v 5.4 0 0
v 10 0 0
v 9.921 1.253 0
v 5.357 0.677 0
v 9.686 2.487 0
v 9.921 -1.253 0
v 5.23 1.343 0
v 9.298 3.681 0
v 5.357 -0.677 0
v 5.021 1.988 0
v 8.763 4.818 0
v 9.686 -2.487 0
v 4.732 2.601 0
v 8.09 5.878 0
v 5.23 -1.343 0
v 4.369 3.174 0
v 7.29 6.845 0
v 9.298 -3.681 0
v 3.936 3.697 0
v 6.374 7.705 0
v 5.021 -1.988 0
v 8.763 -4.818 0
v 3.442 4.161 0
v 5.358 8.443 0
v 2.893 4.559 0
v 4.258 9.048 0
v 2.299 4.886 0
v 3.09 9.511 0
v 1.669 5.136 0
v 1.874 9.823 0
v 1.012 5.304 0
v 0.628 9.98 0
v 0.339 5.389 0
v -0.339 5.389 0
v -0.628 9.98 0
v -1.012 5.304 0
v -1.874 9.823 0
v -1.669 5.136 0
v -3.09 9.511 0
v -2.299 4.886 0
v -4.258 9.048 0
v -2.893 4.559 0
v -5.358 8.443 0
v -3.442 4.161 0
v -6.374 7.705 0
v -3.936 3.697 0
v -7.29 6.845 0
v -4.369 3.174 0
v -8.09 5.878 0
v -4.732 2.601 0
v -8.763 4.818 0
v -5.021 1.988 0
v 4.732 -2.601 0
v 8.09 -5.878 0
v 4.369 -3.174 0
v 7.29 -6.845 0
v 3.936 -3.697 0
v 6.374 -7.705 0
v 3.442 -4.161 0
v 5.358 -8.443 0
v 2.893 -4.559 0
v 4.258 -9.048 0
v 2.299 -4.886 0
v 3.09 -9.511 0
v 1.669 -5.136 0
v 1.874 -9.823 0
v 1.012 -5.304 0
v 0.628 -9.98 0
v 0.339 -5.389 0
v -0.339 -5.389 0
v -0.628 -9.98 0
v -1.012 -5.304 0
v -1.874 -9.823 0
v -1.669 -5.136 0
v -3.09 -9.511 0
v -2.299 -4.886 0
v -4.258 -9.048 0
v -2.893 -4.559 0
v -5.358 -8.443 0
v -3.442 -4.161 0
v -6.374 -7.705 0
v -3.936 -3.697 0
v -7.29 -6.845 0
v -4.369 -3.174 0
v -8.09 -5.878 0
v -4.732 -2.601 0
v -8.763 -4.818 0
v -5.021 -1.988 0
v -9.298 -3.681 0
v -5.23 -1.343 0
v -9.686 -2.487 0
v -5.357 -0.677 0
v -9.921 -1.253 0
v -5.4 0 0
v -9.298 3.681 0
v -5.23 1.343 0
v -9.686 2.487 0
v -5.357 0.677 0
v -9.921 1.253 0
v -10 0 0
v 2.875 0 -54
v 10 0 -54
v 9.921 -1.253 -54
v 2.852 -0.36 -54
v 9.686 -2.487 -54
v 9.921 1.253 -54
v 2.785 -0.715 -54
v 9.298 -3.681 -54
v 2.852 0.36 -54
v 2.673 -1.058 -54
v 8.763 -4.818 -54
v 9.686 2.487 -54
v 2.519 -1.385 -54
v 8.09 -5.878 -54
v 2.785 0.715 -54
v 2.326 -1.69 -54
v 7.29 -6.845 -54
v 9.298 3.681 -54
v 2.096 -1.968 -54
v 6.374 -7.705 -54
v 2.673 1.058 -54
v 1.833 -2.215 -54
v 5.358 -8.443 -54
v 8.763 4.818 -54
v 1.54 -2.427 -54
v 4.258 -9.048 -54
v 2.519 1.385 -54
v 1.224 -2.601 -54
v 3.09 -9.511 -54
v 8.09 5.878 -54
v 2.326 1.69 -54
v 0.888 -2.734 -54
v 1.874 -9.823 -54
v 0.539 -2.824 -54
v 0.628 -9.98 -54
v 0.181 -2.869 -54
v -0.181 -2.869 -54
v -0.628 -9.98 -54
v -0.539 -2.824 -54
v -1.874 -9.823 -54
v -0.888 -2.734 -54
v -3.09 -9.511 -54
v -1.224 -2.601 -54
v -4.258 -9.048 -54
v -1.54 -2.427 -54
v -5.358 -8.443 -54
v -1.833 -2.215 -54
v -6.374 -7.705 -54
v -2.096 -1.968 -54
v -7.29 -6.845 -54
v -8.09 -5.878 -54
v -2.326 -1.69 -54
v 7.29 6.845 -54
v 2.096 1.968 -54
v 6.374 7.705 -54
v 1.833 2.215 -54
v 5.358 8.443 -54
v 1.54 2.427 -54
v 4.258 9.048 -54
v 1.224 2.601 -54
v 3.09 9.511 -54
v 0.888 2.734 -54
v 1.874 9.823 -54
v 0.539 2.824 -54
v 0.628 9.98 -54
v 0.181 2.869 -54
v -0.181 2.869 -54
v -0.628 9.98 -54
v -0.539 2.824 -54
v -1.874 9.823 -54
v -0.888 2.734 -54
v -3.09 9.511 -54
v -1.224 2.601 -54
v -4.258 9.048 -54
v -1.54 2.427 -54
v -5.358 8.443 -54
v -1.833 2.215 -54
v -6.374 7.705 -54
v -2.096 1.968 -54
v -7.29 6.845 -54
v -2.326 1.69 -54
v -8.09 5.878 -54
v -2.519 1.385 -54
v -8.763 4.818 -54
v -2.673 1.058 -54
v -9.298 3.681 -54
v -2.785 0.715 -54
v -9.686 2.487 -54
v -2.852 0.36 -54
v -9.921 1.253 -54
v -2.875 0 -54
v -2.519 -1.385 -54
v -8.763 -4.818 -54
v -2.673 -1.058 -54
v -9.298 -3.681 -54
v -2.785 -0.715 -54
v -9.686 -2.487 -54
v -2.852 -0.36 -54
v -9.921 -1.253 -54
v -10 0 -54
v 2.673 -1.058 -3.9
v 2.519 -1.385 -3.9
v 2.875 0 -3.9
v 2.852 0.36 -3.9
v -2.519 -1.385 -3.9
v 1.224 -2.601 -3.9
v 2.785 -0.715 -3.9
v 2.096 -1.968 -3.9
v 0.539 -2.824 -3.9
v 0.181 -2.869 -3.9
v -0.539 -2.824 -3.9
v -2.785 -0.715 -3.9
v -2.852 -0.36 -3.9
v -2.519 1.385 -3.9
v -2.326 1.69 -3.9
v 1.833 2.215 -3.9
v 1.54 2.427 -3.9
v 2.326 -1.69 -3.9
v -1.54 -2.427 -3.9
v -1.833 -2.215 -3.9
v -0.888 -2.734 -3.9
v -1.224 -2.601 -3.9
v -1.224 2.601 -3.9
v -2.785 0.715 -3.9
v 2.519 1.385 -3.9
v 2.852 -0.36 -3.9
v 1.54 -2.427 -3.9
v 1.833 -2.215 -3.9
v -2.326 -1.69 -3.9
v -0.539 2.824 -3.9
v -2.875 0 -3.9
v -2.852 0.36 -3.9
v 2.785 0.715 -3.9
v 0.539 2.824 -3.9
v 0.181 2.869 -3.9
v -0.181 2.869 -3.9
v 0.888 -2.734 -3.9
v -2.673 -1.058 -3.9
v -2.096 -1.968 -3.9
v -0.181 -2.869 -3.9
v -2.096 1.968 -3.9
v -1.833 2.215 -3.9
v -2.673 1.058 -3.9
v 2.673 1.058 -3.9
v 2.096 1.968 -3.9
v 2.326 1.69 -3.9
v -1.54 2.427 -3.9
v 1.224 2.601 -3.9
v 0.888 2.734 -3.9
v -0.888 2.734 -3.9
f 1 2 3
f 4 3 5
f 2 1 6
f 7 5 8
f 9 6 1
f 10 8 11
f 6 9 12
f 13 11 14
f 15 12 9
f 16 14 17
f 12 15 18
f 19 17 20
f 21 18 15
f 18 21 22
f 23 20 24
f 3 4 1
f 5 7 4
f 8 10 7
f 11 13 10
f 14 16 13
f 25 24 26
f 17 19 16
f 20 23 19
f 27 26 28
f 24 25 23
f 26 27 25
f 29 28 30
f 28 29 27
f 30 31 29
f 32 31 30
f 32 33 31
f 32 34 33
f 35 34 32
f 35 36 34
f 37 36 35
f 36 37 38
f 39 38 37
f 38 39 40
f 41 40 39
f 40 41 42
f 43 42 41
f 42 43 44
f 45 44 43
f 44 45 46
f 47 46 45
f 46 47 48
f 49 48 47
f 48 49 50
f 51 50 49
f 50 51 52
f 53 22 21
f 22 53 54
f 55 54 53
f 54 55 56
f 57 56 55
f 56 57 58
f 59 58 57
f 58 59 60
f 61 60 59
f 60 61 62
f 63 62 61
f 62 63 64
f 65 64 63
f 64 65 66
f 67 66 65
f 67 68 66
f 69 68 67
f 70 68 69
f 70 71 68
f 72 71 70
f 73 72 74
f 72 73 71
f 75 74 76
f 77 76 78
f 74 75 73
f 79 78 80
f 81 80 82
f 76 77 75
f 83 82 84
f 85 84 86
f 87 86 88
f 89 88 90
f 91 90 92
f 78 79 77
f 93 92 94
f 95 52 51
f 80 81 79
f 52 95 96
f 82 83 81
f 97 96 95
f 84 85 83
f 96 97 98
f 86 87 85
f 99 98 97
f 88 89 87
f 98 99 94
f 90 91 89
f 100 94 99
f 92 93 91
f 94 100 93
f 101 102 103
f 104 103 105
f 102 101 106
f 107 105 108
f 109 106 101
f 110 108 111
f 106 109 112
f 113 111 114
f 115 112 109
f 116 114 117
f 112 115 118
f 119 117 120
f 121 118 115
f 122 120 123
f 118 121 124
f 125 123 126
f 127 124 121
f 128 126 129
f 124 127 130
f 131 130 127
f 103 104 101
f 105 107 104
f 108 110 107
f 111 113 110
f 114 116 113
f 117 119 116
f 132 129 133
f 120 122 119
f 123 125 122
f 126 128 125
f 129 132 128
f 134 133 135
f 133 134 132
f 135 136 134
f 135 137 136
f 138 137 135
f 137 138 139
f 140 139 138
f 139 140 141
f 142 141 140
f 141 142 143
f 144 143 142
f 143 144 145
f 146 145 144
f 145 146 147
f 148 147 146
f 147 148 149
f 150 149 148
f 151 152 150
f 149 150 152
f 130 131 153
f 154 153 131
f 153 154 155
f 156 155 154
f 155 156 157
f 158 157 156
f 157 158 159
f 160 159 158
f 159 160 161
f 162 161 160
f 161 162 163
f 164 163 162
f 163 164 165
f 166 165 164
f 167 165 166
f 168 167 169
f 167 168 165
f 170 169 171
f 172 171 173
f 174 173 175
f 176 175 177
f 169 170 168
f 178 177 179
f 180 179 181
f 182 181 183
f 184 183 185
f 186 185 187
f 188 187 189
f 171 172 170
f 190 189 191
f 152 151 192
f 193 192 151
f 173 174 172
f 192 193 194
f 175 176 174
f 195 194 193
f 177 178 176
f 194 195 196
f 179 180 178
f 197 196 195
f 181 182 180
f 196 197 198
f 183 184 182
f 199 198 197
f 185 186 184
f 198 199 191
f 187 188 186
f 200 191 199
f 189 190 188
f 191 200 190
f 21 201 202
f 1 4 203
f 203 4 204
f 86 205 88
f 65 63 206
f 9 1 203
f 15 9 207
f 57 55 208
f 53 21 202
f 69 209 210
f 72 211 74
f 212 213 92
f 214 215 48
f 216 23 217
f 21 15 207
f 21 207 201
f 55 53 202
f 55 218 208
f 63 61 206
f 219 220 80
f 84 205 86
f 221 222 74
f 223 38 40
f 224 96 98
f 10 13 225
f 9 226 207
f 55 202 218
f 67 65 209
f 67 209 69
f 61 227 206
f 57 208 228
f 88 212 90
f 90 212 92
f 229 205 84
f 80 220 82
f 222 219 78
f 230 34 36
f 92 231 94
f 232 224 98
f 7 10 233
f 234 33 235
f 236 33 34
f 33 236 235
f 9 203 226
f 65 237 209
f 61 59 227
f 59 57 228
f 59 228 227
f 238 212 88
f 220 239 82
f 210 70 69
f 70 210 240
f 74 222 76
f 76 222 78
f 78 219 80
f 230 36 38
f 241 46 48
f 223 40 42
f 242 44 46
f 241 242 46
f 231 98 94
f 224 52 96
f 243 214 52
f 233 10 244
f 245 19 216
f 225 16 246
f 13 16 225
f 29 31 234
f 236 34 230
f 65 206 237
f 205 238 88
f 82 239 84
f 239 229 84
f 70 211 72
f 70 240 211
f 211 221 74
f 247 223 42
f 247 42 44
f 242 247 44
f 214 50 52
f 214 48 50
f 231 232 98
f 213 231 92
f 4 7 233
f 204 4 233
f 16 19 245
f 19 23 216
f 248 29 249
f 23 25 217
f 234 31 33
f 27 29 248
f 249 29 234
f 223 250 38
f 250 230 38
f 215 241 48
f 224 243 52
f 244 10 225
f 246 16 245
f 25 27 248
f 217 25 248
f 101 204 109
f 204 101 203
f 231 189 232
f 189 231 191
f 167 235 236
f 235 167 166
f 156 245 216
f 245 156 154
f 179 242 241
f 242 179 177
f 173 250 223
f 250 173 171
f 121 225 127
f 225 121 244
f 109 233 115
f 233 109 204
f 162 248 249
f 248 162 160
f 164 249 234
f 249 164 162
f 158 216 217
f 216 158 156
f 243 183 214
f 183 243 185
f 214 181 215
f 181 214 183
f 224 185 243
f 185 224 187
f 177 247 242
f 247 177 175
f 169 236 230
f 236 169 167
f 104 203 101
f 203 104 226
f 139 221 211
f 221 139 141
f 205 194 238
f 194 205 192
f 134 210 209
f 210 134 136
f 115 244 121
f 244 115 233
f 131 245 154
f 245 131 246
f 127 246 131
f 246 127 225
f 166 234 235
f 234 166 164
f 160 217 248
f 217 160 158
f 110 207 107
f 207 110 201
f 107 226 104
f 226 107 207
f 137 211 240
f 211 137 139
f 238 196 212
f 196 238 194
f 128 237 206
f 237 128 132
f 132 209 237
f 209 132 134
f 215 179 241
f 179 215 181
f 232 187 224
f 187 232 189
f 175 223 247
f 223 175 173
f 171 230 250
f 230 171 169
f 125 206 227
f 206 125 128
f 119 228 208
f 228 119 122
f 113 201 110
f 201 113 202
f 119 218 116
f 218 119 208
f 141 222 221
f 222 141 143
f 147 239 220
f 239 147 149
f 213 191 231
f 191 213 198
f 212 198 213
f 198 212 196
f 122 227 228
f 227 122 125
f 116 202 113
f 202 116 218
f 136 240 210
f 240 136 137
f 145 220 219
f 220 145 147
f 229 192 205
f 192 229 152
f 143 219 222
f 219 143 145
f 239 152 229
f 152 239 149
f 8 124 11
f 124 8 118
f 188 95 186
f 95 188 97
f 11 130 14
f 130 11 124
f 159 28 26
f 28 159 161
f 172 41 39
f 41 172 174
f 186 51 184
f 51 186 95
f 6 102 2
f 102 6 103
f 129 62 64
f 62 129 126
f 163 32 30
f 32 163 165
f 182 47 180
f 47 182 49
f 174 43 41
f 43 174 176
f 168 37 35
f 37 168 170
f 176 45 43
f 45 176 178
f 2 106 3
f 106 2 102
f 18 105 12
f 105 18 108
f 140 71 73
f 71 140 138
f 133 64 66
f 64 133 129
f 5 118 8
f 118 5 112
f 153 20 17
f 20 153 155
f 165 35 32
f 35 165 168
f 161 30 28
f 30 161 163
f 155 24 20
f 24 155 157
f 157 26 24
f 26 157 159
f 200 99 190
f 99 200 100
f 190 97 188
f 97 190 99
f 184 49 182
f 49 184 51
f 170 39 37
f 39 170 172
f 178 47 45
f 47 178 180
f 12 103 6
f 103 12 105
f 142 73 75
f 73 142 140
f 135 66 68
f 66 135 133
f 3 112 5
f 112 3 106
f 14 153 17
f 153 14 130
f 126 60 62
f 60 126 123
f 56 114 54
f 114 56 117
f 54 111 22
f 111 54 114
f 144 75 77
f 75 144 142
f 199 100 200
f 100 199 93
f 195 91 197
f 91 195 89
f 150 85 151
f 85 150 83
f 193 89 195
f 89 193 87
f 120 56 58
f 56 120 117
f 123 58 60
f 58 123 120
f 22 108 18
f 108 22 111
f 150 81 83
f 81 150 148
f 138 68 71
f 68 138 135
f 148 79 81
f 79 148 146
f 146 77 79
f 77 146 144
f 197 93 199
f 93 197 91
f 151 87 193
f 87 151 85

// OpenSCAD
$fn = 50;


difference() {
	union() {
		translate(v = [0, 0, -54.0000000000]) {
			cylinder(h = 54, r = 10.0000000000);
		}
		cylinder(h = 0, r = 19.0000000000);
	}
	union() {
		translate(v = [0, 0, 0]) {
			rotate(a = [0, 0, 0]) {
				difference() {
					union() {
						#translate(v = [0, 0, -54.0000000000]) {
							cylinder(h = 54, r = 2.6000000000);
						}
						#translate(v = [0, 0, -3.9000000000]) {
							cylinder(h = 3.9000000000, r = 10.0000000000, r1 = 2.8750000000, r2 = 5.4000000000);
						}
						#translate(v = [0, 0, -54.0000000000]) {
							cylinder(h = 54, r = 2.8750000000);
						}
						#translate(v = [0, 0, -54.0000000000]) {
							cylinder(h = 54, r = 2.6000000000);
						}
					}
					union();
				}
			}
		}
	}
}
